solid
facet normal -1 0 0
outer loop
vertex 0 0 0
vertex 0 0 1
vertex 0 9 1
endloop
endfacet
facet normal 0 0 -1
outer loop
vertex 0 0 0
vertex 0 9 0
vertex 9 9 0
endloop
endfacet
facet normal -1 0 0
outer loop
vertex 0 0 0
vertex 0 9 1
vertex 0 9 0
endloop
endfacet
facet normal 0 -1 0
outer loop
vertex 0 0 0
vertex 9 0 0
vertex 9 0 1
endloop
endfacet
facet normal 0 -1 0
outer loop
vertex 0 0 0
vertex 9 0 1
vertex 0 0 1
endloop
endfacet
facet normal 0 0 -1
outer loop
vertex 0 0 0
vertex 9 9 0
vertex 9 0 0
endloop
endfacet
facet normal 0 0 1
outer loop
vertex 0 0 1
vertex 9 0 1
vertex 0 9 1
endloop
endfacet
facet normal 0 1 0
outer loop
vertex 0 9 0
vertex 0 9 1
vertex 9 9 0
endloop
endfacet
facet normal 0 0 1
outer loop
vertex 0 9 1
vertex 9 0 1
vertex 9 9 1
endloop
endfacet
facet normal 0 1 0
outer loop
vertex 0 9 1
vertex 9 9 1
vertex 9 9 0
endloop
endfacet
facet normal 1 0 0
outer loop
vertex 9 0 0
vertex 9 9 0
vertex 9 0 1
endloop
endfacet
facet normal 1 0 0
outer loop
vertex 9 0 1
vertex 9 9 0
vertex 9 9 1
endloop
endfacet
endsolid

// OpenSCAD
/* Warning, this is a very basic generator with a lot of approximation 
input data : [VFBGA, 5GX, 9x9x1.0mm, 78, , B, C04-00371B]
generated by com.zoubworld.electronics.cad.model3d.Basic
Date : Sun Feb 15 10:50:48 CET 2026
*/

//body
color("black")
translate([0,0,0])
cube([9.0,9.0,1.0], center=false);
